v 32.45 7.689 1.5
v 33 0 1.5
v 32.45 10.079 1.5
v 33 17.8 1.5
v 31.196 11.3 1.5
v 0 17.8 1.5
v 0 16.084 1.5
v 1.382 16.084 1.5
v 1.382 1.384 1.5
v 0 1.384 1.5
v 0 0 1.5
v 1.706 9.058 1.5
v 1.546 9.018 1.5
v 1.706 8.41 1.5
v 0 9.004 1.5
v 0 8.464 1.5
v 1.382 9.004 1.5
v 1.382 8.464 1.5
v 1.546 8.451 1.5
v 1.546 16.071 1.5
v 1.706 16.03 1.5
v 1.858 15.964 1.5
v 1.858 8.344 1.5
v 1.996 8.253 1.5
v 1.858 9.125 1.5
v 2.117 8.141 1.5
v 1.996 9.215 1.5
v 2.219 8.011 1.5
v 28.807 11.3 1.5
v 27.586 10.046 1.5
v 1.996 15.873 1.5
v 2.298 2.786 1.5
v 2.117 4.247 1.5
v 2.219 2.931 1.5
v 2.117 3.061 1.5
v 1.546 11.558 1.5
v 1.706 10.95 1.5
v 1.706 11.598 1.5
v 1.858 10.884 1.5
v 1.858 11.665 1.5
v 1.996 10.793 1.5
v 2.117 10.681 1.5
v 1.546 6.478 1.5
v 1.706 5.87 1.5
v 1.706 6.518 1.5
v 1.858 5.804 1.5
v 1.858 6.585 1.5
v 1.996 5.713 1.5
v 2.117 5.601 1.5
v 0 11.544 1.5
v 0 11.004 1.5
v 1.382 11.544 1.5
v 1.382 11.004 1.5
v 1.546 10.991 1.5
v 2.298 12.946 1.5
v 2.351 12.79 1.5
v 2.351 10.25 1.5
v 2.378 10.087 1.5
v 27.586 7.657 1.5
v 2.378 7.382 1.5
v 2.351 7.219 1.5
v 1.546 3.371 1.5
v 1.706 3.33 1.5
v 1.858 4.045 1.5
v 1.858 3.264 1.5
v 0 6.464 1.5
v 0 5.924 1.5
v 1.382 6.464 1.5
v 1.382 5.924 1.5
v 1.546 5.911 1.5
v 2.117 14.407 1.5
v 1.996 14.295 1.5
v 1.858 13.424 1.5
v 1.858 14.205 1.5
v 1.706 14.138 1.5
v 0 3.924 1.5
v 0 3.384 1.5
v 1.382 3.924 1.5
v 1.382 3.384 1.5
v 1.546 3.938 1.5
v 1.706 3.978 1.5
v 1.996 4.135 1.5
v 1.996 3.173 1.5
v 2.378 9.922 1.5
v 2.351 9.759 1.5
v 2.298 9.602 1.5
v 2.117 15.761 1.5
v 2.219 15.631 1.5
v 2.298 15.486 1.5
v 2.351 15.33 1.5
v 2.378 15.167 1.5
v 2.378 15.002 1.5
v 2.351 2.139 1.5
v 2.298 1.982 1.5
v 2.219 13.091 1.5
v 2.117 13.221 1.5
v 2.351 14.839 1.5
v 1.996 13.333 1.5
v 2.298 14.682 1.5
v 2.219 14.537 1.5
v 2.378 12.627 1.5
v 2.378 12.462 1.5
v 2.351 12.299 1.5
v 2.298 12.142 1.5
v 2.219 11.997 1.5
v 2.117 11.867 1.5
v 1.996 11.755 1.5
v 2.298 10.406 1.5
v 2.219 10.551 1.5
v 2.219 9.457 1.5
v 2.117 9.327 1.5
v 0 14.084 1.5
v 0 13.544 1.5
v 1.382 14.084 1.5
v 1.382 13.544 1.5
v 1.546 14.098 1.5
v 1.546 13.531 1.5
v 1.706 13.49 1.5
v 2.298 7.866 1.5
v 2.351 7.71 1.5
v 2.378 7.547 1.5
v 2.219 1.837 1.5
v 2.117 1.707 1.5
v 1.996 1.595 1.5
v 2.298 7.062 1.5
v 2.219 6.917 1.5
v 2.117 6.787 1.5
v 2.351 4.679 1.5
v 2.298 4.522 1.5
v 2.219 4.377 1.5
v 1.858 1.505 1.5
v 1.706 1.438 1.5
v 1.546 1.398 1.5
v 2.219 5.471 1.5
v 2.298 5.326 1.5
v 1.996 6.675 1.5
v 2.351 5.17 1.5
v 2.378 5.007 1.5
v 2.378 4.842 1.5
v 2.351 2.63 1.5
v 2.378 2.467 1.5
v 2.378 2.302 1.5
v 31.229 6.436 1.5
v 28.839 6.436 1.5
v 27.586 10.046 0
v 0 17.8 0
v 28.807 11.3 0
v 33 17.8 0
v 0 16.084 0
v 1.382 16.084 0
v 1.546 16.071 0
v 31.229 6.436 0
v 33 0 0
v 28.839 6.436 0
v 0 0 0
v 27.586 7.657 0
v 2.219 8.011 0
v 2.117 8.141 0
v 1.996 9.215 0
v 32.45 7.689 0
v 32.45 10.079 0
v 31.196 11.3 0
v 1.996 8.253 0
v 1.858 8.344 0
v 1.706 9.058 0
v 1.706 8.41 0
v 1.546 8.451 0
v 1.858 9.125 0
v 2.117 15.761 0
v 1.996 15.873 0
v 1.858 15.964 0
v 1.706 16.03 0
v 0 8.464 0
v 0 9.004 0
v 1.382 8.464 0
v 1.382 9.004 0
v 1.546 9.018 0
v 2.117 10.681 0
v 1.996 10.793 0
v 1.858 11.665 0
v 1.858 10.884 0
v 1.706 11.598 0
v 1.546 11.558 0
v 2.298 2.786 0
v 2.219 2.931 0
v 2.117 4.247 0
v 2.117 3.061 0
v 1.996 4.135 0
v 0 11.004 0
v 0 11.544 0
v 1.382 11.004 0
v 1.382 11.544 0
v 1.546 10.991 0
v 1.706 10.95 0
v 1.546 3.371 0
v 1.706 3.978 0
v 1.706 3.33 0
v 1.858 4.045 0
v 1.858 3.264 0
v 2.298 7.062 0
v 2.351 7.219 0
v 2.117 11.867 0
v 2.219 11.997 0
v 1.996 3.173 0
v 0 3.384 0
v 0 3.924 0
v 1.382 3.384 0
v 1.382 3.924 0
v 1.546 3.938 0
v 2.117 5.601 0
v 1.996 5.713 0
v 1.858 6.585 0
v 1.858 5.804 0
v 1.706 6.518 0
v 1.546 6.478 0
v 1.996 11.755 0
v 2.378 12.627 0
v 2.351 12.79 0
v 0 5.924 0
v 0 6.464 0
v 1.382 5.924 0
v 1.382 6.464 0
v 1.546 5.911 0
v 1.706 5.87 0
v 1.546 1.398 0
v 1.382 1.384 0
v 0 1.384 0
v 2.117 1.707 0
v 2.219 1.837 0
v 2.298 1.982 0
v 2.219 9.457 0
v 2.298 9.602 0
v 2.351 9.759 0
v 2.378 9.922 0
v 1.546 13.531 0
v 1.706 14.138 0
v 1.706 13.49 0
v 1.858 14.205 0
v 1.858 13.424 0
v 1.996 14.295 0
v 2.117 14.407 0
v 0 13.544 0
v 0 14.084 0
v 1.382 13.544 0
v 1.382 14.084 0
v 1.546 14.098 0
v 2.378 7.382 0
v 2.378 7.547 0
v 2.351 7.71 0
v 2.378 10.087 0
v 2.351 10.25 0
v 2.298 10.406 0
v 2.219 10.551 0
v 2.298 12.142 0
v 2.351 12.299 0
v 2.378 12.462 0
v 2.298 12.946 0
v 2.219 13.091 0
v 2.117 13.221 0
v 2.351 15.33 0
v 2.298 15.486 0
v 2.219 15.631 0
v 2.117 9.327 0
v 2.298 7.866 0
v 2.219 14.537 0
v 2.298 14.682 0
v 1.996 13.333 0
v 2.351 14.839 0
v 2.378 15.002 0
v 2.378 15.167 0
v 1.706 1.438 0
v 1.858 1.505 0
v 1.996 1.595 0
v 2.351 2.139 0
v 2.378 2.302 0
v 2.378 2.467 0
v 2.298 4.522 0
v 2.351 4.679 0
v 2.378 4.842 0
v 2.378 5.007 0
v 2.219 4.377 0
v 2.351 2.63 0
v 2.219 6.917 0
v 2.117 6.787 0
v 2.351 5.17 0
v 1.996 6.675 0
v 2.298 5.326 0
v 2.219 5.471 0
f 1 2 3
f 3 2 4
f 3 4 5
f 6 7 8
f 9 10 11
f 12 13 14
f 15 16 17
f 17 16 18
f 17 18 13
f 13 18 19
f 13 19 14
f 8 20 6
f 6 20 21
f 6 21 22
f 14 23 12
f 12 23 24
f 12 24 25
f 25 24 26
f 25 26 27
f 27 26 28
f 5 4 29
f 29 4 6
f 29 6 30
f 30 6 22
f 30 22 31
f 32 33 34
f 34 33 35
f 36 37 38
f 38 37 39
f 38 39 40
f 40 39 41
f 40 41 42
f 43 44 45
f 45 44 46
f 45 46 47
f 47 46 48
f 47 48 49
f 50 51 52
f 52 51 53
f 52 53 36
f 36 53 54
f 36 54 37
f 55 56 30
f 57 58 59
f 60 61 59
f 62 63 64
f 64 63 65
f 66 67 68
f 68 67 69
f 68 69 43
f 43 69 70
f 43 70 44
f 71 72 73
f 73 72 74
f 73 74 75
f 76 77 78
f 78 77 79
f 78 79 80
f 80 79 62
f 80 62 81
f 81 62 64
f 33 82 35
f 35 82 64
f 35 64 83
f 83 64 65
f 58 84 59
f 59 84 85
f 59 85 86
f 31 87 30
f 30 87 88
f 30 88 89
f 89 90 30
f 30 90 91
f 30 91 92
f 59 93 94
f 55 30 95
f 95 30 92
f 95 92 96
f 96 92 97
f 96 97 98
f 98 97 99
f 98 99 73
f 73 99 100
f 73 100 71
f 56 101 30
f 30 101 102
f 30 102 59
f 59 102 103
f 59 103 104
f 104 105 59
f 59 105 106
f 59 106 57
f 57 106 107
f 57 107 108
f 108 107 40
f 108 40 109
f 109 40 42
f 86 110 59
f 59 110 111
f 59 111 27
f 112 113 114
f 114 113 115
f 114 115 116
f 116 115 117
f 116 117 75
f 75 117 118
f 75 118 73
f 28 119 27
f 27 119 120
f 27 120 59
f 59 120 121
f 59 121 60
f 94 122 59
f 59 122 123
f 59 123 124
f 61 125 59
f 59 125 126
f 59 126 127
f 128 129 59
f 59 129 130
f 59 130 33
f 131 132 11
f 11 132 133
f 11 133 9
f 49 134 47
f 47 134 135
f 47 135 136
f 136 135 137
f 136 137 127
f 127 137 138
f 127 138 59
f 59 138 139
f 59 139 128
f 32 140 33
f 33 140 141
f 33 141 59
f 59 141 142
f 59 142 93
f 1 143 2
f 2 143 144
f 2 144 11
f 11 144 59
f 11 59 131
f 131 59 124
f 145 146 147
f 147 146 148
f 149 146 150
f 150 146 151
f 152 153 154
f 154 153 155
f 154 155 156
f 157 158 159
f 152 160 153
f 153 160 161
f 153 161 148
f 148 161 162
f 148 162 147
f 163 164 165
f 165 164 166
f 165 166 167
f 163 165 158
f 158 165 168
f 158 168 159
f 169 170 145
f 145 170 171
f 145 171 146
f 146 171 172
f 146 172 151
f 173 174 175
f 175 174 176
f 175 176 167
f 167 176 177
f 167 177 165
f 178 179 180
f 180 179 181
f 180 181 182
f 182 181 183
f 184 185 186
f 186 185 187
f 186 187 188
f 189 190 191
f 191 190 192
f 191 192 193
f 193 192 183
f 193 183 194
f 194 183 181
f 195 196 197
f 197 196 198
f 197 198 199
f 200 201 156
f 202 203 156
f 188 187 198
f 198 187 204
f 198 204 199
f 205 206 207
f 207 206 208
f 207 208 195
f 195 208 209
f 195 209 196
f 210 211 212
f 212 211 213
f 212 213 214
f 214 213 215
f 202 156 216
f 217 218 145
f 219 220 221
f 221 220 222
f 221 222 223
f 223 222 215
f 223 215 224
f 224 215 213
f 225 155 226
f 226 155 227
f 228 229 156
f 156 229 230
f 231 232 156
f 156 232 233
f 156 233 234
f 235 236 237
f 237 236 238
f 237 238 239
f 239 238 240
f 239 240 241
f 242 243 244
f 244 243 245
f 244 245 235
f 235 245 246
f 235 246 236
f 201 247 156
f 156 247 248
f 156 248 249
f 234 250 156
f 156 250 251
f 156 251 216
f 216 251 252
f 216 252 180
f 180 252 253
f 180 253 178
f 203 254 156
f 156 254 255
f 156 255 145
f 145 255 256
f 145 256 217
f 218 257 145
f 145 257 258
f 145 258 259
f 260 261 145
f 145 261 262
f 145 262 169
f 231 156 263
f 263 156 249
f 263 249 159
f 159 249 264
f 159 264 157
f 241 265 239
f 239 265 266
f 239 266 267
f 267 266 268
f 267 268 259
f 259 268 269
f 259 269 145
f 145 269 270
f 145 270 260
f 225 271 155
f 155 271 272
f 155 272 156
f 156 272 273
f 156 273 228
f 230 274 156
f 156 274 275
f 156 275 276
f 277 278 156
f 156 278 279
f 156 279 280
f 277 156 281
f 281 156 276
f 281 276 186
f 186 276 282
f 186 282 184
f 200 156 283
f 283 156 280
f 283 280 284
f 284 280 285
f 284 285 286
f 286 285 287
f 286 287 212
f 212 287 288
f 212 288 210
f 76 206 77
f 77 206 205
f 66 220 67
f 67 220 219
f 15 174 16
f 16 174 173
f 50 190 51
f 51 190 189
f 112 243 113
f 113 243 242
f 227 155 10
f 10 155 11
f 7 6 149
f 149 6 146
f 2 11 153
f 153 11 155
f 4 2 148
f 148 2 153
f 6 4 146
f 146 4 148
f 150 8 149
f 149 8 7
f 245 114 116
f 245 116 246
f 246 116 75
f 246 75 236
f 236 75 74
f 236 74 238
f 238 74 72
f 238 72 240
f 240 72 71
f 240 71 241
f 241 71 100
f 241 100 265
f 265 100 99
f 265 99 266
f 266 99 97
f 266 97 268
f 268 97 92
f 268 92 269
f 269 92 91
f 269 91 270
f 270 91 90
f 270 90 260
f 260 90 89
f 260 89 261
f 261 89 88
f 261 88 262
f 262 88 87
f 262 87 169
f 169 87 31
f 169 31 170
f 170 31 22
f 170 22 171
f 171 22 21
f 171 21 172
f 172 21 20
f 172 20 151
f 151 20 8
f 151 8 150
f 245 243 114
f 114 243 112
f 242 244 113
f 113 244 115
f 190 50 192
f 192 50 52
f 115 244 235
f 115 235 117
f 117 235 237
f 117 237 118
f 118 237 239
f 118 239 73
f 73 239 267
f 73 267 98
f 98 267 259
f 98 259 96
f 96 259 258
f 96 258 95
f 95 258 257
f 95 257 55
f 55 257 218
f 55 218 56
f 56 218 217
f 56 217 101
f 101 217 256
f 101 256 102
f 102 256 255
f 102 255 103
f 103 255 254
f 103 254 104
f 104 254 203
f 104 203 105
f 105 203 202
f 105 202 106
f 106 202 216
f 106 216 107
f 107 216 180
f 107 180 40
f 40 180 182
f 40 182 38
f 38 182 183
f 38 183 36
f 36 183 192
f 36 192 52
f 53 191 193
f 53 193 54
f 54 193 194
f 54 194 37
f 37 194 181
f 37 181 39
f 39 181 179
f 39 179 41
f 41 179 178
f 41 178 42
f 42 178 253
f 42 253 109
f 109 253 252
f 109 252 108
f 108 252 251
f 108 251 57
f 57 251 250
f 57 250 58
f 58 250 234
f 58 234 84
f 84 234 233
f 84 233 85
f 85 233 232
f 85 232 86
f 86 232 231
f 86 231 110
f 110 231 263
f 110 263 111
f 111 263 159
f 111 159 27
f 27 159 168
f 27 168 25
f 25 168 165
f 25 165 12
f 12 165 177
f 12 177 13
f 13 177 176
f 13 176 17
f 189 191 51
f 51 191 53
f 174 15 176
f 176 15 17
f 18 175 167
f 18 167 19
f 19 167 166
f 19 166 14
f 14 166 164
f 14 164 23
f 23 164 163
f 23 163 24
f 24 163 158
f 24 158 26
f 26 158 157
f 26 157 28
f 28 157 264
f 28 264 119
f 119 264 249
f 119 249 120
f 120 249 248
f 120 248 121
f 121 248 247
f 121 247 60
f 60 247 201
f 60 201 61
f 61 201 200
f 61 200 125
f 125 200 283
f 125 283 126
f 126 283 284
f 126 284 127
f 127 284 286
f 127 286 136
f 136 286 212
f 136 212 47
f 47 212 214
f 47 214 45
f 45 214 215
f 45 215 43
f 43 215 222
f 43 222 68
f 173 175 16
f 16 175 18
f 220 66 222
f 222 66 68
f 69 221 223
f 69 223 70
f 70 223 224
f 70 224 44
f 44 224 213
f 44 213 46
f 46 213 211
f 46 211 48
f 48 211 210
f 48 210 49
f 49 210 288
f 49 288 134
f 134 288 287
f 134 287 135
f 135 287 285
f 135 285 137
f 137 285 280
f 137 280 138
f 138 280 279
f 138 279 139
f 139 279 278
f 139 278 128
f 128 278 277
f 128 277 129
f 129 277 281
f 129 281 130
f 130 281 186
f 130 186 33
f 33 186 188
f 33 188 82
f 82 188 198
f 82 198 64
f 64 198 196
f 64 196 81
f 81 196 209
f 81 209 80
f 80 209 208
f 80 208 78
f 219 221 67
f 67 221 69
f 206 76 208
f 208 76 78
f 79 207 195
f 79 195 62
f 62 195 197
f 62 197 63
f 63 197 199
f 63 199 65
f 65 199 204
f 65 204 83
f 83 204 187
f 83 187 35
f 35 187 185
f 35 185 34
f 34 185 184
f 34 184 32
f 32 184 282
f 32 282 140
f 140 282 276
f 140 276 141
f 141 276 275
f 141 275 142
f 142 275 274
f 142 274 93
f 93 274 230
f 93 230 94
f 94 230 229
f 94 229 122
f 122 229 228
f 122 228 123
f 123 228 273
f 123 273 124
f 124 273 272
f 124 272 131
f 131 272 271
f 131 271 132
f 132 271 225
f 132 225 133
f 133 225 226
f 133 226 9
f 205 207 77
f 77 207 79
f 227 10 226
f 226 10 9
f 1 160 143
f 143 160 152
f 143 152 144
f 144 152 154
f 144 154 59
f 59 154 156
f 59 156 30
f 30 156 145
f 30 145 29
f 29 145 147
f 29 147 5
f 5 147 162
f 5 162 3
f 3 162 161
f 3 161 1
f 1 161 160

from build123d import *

# Parameters (mm, degrees)
SKETCH1_W           = 33
SKETCH1_H           = 17.8
MAIN_BODY_DEPTH     = 1.5
PIN_HOLE_DEPTH      = 1.5
PIN_HOLE_DEPTH_BACK = 10
CUT_EXTRUDE3_DEPTH  = 10


with BuildPart() as part:
    # Sketch1 → Main Body (new body)
    with BuildSketch(Plane.XY):
        with Locations((16.5, 8.9)):
            Rectangle(SKETCH1_W, SKETCH1_H)
    extrude(amount=MAIN_BODY_DEPTH)

    # Sketch7 → Pin Hole (cut, two sides)
    with BuildSketch(Plane(origin=(0, 0, 1.5), x_dir=(-1, 0, 0), z_dir=(0, 0, -1))) as pin_hole_sk:
        with BuildLine():
            Line((0, 16.084169392), (-1.381760133, 16.084169392))
            ThreePointArc((-1.381760133, 16.084169392), (-2.381760133, 15.084169392), (-1.381760133, 14.084169392))
            Line((-1.381760133, 14.084169392), (0, 14.084169392))
            Line((0, 14.084169392), (0, 16.084169392))
        make_face()
        with BuildLine():
            Line((0, 11.544169392), (0, 13.544169392))
            Line((0, 13.544169392), (-1.381760133, 13.544169392))
            ThreePointArc((-1.381760133, 13.544169392), (-2.381760133, 12.544169392), (-1.381760133, 11.544169392))
            Line((-1.381760133, 11.544169392), (0, 11.544169392))
        make_face()
        with BuildLine():
            Line((0, 9.004169392), (0, 11.004169392))
            Line((0, 11.004169392), (-1.381760133, 11.004169392))
            ThreePointArc((-1.381760133, 11.004169392), (-2.381760133, 10.004169392), (-1.381760133, 9.004169392))
            Line((-1.381760133, 9.004169392), (0, 9.004169392))
        make_face()
        with BuildLine():
            Line((0, 6.464169392), (0, 8.464169392))
            Line((0, 8.464169392), (-1.381760133, 8.464169392))
            ThreePointArc((-1.381760133, 8.464169392), (-2.381760133, 7.464169392), (-1.381760133, 6.464169392))
            Line((-1.381760133, 6.464169392), (0, 6.464169392))
        make_face()
        with BuildLine():
            Line((-1.381760133, 3.924169392), (0, 3.924169392))
            Line((0, 3.924169392), (0, 5.924169392))
            Line((0, 5.924169392), (-1.381760133, 5.924169392))
            ThreePointArc((-1.381760133, 5.924169392), (-2.381760133, 4.924169392), (-1.381760133, 3.924169392))
        make_face()
        with BuildLine():
            Line((-1.381760133, 1.384169392), (0, 1.384169392))
            Line((0, 1.384169392), (0, 3.384169392))
            Line((0, 3.384169392), (-1.381760133, 3.384169392))
            ThreePointArc((-1.381760133, 3.384169392), (-2.381760133, 2.384169392), (-1.381760133, 1.384169392))
        make_face()
    extrude(amount=PIN_HOLE_DEPTH, mode=Mode.SUBTRACT)
    extrude(pin_hole_sk.sketch, amount=-PIN_HOLE_DEPTH_BACK, mode=Mode.SUBTRACT)

    # Sketch10 → Cut-Extrude3 (cut)
    with BuildSketch(Plane(origin=(0, 0, 1.5), x_dir=(-1, 0, 0), z_dir=(0, 0, -1))):
        Polygon((-32.45, 7.689172953), (-32.45, 10.078883994), (-31.196454748, 11.3), (-28.806743708, 11.3), (-27.585627701, 10.046454748), (-27.585627701, 7.656743708), (-28.839172953, 6.435627701), (-31.228883994, 6.435627701), align=None)
    extrude(amount=CUT_EXTRUDE3_DEPTH, mode=Mode.SUBTRACT)


solid = part.part
